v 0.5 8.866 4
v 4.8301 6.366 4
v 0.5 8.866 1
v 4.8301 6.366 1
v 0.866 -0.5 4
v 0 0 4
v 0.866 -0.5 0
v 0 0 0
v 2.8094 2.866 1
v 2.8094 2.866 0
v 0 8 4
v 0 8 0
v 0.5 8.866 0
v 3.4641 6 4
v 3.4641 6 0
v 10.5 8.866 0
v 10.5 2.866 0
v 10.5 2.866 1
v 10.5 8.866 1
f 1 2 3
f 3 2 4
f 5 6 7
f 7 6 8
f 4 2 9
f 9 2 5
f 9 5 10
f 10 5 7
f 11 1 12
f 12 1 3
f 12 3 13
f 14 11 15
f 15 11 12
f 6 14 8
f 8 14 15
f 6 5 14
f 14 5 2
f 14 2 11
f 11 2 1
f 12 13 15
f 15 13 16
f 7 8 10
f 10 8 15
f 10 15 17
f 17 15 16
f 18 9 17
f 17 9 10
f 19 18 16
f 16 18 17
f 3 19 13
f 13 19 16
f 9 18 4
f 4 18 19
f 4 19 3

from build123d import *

# Parameters (mm, degrees)
BOSS_EXTRUDE1_DEPTH = 4
BOSS_EXTRUDE2_DEPTH = 1


with BuildPart() as part:
    # Sketch1 → Boss-Extrude1 (new body)
    with BuildSketch(Plane.XY):
        Polygon((0, 0), (3.464101615, 6), (0, 8), (0.5, 8.866025404), (4.830127019, 6.366025404), (0.866025404, -0.5), align=None)
    extrude(amount=BOSS_EXTRUDE1_DEPTH)

    # Sketch2 → Boss-Extrude2 (add)
    with BuildSketch(Plane(origin=(0, 0, 0), x_dir=(-1, 0, 0), z_dir=(0, 0, -1))):
        Polygon((-0.5, 8.866025404), (-10.5, 8.866025404), (-10.5, 2.866025404), (-2.809401077, 2.866025404), (-4.830127019, 6.366025404), align=None)
    extrude(amount=-BOSS_EXTRUDE2_DEPTH)


solid = part.part
